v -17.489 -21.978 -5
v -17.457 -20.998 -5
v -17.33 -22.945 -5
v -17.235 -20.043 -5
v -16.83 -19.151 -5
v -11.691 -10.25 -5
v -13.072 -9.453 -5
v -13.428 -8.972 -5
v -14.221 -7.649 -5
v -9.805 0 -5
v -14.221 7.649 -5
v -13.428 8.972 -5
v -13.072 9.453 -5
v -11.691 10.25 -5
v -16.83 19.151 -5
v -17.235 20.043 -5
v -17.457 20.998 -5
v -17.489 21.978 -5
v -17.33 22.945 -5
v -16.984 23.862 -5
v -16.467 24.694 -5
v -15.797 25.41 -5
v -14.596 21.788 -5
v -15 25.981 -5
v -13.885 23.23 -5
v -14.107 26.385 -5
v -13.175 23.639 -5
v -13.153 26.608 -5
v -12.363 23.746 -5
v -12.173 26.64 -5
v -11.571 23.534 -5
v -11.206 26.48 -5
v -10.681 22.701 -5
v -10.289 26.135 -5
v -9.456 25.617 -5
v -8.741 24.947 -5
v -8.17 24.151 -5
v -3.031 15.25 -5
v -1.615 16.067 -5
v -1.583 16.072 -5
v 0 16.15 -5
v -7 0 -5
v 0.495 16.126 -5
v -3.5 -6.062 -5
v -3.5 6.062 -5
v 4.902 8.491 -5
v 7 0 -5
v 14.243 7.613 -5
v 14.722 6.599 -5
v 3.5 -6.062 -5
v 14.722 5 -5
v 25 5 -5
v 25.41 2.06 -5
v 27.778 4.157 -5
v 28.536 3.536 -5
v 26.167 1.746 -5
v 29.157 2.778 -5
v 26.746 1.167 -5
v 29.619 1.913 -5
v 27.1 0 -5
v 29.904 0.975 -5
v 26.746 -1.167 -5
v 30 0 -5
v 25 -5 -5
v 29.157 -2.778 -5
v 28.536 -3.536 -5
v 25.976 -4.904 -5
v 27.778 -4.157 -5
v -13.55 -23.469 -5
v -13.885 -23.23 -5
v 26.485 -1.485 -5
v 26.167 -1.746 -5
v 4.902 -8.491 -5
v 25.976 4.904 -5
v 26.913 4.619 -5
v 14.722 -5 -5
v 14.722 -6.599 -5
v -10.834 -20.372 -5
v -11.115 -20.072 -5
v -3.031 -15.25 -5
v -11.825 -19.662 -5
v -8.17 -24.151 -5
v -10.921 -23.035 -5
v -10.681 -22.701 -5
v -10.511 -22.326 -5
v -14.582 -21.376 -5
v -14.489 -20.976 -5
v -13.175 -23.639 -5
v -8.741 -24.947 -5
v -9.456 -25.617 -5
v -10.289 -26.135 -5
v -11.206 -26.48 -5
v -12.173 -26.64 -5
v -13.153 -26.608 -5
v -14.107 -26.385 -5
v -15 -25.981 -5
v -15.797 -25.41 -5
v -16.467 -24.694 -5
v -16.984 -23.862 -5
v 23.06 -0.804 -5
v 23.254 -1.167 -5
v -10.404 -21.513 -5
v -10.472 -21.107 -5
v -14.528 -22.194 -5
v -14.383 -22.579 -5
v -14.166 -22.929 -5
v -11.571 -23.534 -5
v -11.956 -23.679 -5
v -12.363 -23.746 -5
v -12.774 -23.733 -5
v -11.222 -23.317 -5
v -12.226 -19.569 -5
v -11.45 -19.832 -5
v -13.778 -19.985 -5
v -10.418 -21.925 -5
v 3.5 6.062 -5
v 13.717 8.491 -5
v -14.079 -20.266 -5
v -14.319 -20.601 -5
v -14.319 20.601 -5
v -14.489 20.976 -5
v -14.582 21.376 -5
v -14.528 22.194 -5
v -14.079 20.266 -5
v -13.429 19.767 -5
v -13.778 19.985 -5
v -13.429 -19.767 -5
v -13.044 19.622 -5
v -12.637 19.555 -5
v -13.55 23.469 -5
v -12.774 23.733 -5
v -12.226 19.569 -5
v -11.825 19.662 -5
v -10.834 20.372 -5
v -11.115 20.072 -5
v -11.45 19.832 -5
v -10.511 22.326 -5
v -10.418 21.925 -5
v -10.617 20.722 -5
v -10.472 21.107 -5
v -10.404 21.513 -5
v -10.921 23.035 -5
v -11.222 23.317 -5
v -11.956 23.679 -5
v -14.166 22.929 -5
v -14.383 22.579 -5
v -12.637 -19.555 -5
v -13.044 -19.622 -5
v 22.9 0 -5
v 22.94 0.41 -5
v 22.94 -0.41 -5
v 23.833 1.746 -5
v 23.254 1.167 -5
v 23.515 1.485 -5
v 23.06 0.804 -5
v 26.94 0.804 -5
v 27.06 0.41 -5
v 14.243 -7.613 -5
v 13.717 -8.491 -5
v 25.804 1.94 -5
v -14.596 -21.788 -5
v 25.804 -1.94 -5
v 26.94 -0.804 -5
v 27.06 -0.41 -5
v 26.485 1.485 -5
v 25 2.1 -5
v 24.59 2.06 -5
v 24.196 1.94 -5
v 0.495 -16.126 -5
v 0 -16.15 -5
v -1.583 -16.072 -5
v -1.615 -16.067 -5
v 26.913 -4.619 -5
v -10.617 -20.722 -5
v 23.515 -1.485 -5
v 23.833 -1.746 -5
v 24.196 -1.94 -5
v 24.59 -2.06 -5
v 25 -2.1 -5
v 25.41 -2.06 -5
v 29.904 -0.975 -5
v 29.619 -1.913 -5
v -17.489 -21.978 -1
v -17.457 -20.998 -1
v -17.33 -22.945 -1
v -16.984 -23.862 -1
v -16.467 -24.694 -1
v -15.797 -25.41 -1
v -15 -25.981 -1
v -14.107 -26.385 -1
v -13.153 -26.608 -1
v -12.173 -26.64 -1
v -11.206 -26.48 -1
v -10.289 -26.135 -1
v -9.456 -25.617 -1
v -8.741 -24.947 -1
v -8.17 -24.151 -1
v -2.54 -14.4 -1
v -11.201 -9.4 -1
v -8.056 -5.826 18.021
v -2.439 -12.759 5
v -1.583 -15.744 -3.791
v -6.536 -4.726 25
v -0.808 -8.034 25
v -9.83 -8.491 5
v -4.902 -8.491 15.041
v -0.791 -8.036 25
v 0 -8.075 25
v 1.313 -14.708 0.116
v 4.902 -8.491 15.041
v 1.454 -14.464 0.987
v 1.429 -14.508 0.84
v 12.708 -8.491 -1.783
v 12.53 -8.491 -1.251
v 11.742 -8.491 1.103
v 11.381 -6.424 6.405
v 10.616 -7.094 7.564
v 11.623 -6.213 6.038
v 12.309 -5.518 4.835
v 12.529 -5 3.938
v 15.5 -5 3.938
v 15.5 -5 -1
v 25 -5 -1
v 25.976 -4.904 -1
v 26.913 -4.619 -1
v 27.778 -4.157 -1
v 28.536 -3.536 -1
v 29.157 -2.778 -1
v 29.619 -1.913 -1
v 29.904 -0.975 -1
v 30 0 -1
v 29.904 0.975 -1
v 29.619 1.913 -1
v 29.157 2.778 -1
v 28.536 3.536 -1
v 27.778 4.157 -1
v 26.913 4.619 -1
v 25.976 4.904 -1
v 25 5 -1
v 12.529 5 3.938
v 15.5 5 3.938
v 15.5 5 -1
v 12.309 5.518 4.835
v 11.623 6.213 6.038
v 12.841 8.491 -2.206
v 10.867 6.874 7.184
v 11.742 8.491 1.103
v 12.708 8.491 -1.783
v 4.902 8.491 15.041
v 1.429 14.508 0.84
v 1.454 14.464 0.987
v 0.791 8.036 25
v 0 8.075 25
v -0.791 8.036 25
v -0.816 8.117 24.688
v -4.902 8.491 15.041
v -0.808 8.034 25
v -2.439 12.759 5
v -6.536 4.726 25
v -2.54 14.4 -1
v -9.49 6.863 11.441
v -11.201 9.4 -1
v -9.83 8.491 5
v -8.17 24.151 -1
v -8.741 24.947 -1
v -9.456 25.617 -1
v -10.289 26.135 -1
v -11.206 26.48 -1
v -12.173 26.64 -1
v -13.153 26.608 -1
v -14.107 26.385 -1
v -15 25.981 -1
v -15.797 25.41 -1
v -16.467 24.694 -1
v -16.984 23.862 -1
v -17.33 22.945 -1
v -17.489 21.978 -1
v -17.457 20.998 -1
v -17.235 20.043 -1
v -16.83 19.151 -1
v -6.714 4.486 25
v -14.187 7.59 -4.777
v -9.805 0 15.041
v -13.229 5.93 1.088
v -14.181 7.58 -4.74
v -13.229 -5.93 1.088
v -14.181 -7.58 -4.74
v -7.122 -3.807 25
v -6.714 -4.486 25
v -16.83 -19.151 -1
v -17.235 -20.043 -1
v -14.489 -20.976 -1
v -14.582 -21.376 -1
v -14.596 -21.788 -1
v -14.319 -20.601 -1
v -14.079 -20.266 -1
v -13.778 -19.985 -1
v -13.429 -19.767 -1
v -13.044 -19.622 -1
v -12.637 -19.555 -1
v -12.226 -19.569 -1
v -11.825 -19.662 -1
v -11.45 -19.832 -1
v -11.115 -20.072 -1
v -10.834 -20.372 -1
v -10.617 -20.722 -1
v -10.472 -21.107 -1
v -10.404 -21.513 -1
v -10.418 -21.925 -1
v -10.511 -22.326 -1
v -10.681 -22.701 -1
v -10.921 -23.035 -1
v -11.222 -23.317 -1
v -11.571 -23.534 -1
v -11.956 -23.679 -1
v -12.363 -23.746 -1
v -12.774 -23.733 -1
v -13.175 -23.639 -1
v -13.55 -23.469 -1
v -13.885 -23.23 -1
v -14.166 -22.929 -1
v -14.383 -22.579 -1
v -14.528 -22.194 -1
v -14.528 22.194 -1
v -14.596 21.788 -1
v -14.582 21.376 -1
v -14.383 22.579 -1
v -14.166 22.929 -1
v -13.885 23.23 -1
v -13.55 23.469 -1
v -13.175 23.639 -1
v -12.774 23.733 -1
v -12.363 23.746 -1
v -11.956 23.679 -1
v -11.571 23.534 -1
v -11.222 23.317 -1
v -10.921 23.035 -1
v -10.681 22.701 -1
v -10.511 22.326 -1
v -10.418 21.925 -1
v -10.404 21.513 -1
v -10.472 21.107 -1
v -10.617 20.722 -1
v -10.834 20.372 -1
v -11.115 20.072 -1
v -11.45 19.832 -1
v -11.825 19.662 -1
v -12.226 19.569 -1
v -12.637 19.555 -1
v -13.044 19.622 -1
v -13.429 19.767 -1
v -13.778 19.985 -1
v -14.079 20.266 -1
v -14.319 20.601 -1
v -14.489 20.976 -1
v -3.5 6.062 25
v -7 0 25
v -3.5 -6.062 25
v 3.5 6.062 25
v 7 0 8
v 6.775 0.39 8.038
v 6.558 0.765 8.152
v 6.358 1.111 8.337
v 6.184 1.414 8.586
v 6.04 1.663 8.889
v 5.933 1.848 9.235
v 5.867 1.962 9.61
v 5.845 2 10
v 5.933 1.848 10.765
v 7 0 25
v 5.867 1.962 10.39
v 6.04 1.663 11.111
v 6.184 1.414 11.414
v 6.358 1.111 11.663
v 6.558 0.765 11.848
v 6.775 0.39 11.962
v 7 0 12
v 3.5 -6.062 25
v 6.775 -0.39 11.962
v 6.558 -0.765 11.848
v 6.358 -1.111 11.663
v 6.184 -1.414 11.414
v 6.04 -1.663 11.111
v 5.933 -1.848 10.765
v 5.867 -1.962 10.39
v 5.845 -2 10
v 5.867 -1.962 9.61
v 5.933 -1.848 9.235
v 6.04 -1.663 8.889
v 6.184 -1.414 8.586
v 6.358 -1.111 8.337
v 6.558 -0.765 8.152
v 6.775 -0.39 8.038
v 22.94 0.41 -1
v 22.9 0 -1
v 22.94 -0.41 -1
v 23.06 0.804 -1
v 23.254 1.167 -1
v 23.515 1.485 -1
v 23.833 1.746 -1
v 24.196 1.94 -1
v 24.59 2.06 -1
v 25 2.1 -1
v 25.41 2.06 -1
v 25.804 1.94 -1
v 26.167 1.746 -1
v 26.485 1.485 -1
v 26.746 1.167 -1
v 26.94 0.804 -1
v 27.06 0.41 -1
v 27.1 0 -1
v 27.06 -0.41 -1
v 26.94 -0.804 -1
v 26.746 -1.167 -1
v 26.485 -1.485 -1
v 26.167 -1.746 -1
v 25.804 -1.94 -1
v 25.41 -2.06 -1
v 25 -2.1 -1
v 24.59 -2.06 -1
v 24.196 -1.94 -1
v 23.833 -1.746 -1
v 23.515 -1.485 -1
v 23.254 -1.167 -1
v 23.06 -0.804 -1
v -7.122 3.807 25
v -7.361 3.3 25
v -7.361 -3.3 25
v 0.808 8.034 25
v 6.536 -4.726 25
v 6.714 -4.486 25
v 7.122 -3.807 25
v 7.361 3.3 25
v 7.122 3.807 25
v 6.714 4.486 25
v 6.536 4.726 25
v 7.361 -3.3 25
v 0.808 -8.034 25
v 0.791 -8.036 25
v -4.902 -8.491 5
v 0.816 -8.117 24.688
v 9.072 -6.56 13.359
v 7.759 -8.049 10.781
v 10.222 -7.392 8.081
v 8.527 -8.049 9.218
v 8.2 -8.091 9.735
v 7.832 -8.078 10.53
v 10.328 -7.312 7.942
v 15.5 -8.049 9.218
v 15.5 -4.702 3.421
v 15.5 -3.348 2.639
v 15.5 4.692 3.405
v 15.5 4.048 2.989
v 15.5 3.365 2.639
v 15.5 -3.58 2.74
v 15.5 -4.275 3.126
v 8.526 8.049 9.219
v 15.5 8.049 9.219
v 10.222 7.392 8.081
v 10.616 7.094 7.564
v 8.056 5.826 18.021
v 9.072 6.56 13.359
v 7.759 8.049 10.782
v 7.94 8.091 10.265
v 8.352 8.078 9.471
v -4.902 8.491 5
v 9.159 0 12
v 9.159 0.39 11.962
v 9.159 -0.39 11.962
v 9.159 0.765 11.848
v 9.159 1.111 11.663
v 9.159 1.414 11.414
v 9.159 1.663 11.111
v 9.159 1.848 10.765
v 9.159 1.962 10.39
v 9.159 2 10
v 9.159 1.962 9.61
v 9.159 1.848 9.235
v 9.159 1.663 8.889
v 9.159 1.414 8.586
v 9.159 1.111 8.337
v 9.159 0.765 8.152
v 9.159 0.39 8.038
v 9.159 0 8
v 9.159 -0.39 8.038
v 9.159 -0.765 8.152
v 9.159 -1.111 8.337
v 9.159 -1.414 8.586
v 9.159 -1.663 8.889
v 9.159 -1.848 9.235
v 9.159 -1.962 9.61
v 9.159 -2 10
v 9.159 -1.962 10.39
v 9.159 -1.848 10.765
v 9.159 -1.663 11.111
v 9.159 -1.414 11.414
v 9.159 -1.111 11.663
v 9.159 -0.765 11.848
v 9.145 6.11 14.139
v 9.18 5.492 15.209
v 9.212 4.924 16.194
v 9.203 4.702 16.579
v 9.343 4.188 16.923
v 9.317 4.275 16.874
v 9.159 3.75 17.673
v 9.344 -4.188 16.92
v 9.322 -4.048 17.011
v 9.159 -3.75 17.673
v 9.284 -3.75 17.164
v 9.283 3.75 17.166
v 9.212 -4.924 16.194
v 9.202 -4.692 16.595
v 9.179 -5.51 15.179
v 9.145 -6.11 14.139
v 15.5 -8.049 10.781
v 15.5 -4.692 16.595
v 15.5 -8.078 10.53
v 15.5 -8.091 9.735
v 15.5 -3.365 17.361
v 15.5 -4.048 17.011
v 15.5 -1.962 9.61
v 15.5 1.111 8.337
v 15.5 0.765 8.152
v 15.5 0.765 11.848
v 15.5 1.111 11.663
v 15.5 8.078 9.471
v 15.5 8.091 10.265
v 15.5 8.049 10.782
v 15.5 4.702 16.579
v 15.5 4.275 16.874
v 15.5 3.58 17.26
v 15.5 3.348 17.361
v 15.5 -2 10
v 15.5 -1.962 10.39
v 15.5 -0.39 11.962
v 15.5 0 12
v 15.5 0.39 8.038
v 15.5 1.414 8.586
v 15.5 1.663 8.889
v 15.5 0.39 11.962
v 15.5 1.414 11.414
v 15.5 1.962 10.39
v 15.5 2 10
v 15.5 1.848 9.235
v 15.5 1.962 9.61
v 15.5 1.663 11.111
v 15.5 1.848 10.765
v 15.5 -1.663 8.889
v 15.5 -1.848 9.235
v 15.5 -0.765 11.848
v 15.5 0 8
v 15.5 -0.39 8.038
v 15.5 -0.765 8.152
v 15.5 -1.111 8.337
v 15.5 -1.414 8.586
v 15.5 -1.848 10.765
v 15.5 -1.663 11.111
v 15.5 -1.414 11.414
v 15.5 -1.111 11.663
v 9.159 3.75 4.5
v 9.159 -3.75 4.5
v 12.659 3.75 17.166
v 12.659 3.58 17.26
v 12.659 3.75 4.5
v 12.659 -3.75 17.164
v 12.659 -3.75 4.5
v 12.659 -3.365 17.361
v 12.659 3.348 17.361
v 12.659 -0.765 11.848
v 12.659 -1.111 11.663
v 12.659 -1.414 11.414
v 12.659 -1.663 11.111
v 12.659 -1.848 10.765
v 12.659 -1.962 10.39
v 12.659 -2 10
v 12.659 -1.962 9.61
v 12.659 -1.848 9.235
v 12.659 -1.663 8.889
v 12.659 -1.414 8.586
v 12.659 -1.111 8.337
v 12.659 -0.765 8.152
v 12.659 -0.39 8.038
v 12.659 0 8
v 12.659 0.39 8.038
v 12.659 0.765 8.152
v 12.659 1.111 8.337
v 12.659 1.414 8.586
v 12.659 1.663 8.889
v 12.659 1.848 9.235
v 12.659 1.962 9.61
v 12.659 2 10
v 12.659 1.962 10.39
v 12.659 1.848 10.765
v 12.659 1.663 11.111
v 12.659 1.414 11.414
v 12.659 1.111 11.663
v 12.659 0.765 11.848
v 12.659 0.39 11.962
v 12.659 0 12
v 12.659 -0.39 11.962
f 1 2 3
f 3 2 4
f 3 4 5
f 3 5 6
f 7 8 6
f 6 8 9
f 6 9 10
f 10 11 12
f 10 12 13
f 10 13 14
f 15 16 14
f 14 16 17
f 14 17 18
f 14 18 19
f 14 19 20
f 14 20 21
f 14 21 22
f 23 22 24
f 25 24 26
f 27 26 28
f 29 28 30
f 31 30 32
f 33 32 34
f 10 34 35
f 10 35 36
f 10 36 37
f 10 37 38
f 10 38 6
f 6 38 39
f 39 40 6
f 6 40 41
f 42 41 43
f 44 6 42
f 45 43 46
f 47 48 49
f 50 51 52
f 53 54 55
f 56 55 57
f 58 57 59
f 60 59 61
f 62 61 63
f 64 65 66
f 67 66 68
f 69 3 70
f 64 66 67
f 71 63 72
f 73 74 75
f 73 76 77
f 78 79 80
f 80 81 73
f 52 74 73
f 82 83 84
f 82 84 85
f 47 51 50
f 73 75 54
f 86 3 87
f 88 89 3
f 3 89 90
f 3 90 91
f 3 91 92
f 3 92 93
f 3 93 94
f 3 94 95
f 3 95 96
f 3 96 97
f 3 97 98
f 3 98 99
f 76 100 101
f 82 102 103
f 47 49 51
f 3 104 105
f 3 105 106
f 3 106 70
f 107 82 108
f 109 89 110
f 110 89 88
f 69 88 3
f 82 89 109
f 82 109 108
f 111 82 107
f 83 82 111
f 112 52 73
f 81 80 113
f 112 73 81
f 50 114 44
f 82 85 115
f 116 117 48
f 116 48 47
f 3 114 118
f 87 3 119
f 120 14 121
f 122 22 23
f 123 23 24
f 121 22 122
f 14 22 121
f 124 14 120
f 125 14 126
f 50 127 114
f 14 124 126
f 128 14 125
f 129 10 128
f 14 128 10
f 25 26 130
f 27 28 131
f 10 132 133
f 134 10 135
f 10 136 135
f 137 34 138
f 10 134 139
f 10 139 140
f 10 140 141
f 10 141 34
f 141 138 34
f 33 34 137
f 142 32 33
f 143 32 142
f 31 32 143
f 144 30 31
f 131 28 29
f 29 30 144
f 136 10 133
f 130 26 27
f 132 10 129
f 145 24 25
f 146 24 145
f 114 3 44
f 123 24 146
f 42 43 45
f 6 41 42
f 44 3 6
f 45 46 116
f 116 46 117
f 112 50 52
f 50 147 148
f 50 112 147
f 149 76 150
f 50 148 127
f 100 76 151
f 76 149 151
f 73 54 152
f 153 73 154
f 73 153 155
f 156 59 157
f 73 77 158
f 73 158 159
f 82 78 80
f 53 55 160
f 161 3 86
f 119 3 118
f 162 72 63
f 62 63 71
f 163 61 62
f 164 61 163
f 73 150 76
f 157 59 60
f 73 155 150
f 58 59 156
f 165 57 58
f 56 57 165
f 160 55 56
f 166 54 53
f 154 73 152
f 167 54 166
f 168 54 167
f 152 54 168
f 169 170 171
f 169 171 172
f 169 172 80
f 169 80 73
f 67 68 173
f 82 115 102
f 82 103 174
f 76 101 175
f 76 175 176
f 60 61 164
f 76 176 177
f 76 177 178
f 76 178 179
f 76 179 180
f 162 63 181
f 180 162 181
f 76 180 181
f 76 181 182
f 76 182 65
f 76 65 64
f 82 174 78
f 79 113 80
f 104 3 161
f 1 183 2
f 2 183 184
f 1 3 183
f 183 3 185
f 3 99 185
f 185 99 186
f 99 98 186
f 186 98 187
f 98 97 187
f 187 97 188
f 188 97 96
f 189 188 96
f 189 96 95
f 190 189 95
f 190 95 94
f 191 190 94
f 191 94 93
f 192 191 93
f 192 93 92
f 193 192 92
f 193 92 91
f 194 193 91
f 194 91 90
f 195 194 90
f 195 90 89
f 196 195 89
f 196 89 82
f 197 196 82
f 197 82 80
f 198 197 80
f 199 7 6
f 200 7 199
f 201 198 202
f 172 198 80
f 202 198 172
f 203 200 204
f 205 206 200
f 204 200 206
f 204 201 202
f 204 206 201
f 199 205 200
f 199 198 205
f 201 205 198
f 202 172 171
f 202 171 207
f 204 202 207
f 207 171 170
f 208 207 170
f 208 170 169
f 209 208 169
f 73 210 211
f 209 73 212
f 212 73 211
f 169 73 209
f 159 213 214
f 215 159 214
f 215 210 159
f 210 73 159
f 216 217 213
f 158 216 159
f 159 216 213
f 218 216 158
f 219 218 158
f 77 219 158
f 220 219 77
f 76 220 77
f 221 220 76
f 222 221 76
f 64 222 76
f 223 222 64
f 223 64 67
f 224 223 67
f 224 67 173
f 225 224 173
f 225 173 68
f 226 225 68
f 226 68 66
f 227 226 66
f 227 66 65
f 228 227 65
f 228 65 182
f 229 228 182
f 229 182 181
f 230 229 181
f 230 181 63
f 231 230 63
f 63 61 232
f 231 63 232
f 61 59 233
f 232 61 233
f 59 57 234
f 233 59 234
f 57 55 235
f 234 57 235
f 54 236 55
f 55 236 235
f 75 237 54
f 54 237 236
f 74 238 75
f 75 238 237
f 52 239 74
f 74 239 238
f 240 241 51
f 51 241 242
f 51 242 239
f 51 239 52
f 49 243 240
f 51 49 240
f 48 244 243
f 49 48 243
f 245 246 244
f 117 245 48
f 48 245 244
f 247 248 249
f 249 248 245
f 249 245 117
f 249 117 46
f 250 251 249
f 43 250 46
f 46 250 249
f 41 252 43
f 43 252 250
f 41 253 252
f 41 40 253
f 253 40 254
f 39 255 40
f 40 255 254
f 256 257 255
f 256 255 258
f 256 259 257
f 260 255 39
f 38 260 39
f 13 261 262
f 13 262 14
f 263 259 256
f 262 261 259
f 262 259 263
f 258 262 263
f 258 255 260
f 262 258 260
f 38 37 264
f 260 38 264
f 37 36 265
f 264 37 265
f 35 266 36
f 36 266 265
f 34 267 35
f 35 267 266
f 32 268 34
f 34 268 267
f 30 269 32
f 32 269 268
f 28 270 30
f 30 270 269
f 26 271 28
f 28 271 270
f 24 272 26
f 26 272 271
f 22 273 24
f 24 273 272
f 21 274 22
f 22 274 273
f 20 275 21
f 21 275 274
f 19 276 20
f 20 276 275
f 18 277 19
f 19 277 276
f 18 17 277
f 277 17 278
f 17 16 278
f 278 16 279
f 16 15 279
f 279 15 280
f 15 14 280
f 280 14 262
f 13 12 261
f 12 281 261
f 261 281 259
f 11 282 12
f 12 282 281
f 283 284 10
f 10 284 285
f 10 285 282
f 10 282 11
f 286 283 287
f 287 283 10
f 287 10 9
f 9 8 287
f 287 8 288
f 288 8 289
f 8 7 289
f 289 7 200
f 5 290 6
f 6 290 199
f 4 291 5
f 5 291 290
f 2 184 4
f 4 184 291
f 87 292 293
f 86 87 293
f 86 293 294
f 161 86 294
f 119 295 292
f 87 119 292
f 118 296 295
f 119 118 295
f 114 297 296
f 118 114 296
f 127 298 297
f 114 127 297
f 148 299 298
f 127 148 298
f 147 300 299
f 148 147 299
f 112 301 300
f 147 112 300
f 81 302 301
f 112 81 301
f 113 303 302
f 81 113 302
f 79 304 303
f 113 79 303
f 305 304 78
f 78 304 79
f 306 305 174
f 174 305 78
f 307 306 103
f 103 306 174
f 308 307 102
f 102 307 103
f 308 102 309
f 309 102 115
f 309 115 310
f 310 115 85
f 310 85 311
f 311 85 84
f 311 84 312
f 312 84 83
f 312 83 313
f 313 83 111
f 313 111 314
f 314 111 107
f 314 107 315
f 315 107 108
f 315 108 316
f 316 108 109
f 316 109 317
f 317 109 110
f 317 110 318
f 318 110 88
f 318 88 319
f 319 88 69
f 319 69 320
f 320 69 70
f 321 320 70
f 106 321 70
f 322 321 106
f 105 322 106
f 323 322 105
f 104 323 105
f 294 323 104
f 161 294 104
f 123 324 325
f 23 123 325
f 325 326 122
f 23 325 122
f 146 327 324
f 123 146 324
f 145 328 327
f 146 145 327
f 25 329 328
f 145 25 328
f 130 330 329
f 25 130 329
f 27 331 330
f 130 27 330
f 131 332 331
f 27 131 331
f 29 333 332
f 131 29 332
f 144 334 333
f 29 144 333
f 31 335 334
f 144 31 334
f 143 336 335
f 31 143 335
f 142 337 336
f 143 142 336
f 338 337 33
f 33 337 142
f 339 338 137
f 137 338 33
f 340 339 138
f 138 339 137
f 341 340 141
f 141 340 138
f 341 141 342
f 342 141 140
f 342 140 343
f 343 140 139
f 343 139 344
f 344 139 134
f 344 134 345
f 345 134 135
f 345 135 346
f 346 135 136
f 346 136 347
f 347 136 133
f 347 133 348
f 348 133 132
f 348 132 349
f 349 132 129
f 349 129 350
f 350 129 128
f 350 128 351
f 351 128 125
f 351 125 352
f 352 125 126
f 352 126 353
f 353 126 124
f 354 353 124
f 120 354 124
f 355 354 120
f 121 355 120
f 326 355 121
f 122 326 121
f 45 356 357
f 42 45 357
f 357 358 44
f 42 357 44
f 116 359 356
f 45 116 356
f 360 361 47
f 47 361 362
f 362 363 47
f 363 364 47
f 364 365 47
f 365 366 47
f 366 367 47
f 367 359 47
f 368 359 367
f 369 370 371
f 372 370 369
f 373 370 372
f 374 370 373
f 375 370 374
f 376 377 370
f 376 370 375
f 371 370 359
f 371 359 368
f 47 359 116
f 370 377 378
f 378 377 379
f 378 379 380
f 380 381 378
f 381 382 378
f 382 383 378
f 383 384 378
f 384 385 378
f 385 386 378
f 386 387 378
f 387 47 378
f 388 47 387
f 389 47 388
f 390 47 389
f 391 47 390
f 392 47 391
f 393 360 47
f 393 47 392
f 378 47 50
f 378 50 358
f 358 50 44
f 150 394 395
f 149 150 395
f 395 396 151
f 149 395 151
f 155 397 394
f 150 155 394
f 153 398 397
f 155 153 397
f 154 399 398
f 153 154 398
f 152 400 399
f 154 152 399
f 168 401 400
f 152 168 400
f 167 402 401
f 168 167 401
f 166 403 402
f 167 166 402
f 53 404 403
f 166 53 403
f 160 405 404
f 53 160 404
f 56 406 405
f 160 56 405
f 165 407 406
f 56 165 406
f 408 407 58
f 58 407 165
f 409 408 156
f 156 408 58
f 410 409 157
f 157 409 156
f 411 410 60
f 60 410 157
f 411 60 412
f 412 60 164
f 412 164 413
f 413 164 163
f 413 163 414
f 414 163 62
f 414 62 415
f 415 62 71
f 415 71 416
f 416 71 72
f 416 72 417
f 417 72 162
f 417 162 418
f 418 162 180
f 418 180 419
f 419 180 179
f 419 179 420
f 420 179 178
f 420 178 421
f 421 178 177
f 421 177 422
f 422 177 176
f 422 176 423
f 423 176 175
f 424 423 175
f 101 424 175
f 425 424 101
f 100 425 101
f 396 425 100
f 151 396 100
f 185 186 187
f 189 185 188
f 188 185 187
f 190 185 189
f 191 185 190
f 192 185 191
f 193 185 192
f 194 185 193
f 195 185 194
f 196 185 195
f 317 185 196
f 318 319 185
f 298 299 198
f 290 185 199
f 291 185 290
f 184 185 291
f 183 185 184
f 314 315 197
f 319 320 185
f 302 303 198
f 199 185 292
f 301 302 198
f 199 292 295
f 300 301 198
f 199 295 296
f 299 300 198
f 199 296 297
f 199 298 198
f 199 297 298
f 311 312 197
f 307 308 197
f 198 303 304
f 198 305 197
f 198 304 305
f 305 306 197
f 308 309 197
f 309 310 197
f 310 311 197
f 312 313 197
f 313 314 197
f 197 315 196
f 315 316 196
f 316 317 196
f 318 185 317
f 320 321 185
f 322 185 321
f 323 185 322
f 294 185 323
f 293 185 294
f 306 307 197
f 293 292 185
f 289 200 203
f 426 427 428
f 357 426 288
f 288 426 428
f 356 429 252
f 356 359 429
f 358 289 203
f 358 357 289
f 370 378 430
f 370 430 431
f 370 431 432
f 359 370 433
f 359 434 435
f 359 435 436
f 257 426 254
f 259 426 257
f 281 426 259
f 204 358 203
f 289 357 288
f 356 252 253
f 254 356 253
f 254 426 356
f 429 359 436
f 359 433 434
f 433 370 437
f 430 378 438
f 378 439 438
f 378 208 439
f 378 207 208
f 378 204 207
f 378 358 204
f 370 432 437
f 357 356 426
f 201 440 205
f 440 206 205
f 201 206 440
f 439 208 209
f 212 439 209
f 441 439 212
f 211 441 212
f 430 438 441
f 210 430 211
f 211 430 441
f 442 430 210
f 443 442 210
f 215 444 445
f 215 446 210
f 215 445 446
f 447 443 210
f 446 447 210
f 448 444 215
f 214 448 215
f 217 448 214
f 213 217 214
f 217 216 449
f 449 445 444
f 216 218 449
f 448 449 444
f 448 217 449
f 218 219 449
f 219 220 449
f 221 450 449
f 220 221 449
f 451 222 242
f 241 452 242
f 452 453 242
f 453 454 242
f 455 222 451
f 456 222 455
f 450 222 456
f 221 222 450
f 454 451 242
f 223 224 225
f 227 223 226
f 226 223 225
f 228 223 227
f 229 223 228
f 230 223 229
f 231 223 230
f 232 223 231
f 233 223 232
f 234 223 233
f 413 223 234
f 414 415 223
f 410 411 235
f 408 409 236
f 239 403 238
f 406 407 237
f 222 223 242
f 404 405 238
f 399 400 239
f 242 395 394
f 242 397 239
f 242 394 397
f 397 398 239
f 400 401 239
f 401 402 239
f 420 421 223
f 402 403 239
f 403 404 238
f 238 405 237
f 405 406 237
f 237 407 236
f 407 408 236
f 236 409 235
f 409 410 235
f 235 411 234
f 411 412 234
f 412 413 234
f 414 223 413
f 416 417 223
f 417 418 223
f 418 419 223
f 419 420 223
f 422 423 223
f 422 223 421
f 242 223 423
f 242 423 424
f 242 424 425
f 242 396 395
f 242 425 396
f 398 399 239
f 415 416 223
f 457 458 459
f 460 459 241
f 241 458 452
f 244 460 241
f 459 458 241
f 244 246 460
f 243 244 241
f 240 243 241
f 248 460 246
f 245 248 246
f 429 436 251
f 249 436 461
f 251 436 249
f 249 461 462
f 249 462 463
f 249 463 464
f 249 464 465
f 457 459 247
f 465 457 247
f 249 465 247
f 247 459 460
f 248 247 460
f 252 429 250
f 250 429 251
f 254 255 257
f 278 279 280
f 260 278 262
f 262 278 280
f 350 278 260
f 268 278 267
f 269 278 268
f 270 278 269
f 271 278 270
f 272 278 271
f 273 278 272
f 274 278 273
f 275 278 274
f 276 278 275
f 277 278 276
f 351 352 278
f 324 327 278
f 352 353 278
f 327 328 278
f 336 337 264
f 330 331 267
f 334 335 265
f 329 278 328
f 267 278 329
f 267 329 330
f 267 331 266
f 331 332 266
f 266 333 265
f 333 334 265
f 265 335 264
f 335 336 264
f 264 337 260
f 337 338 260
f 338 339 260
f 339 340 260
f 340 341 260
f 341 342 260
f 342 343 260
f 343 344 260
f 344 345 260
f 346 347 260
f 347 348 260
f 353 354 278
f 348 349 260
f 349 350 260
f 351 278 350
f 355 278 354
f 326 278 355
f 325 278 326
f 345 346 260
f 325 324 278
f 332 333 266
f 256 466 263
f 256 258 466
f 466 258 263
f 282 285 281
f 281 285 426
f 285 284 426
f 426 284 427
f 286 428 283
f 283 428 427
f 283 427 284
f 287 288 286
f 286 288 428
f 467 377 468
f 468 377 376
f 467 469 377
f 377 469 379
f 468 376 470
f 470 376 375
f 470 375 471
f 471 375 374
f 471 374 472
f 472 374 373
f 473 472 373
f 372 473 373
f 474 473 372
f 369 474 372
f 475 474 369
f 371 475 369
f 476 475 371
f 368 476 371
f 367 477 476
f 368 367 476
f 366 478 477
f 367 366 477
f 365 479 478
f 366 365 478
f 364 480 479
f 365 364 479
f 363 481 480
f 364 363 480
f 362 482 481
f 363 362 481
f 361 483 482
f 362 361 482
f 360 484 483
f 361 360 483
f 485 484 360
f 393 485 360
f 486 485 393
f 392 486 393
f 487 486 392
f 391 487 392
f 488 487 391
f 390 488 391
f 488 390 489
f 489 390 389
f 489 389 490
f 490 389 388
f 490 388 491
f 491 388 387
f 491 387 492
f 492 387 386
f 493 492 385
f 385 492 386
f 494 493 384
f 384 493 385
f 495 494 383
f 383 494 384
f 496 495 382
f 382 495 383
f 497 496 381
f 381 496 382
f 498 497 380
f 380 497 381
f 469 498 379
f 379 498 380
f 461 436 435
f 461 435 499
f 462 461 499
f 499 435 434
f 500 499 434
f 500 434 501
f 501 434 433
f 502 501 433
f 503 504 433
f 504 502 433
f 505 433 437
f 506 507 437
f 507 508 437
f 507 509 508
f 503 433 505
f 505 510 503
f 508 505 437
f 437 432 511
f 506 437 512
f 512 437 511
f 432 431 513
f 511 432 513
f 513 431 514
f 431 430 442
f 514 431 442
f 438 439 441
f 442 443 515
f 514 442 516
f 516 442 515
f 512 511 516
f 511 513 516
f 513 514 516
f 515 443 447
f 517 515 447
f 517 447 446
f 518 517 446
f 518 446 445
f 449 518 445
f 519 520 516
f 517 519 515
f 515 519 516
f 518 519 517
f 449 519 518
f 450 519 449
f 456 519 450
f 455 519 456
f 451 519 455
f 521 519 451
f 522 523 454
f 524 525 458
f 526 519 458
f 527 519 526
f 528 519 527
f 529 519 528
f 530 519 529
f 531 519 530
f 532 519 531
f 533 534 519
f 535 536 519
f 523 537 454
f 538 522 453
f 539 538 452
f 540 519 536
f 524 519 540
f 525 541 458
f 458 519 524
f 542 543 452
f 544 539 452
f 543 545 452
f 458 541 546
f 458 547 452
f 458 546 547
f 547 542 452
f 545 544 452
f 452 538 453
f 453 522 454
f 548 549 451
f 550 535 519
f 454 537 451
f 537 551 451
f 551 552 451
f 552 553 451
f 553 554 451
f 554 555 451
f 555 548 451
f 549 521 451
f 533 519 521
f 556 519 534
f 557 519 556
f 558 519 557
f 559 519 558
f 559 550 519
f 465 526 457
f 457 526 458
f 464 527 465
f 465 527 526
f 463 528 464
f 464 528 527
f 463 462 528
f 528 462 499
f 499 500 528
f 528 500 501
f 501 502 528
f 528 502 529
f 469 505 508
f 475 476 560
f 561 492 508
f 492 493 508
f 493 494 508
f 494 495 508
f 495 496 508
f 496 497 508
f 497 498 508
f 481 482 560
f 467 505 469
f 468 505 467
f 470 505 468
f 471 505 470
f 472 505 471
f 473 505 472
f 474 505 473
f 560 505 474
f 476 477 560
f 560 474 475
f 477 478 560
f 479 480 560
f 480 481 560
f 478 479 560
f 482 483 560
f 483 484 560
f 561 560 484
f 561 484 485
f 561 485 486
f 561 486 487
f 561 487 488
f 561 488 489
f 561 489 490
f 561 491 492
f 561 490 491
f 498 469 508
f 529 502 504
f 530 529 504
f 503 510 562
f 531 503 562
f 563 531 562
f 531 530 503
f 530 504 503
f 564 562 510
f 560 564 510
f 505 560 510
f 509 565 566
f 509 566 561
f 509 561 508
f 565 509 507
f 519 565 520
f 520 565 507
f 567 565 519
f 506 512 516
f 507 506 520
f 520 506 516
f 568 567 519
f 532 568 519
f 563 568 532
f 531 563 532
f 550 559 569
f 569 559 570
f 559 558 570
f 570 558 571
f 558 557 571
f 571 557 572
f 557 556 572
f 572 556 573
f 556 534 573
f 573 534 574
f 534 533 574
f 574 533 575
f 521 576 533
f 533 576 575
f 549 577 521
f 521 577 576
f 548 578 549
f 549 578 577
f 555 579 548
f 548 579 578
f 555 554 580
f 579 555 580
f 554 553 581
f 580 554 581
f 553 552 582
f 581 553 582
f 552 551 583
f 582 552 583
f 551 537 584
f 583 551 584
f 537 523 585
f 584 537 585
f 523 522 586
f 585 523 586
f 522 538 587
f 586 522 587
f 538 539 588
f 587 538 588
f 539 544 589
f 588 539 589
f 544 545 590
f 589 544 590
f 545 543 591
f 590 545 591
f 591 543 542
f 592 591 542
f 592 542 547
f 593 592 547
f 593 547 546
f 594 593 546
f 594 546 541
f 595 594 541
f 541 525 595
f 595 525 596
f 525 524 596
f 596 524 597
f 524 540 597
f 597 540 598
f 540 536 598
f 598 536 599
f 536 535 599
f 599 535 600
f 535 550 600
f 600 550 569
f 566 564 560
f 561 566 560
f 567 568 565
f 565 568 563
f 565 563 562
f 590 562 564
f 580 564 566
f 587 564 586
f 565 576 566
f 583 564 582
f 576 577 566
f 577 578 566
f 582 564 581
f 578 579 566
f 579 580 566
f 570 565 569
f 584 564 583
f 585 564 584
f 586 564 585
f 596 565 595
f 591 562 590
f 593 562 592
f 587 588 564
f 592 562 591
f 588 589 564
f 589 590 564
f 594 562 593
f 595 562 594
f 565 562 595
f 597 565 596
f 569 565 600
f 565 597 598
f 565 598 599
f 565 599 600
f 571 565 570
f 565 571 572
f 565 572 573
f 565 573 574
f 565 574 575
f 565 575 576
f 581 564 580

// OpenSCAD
difference () {
  union () {
    difference () {
      union () {
        rotate (a=0.0, v=[0, 0, 1]) {
          union () {
            translate ([12.5, 0, 0]) {
              cube ([25.0, 10, 10], center=true);
            }
            translate ([25.0, 0, 0]) {
              cylinder ($fn=32, h=10, r=5, center=true);
            }
          }
        }
        rotate (a=119.99999999999999, v=[0, 0, 1]) {
          union () {
            translate ([12.5, 0, 0]) {
              cube ([25.0, 10, 10], center=true);
            }
            translate ([25.0, 0, 0]) {
              cylinder ($fn=32, h=10, r=5, center=true);
            }
          }
        }
        rotate (a=239.99999999999997, v=[0, 0, 1]) {
          union () {
            translate ([12.5, 0, 0]) {
              cube ([25.0, 10, 10], center=true);
            }
            translate ([25.0, 0, 0]) {
              cylinder ($fn=32, h=10, r=5, center=true);
            }
          }
        }
      }
      translate ([0, 0, 4]) {
        cylinder (h=10, r=50.0, center=true);
      }
    }
    union () {
      translate ([8.0, 0, 10.0]) {
        rotate (a=29.999999999999996, v=[1, 0, 0]) {
          rotate (a=90.0, v=[0, 1, 0]) {
            intersection () {
              cylinder ($fn=6, h=15, r=8.5, center=true);
              cylinder ($fn=64, h=15, r=8.095238095238095, center=true);
            }
          }
        }
      }
      translate ([10.5, 0, 0]) {
        cube ([10, 10, 10], center=true);
      }
      translate ([0, 0, 10.0]) {
        intersection () {
          rotate (a=29.999999999999996, v=[0, 0, 1]) {
            cylinder ($fn=6, h=30, r1=17.0, r2=8.5, center=true);
          }
          cylinder ($fn=64, h=30, r1=16.15, r2=8.075, center=true);
        }
      }
    }
  }
  translate ([10.909090909090908, 0, 12]) {
    cube ([3.5, 7.5, 15.0], center=true);
  }
  rotate (a=0.0, v=[0, 0, 1]) {
    translate ([25.0, 0, 0]) {
      cylinder ($fn=32, h=20, r=2.1, center=true);
    }
  }
  rotate (a=119.99999999999999, v=[0, 0, 1]) {
    translate ([25.0, 0, 0]) {
      cylinder ($fn=32, h=20, r=2.1, center=true);
    }
  }
  rotate (a=239.99999999999997, v=[0, 0, 1]) {
    translate ([25.0, 0, 0]) {
      cylinder ($fn=32, h=20, r=2.1, center=true);
    }
  }
  cylinder ($fn=6, h=100, r=7.0, center=true);
  translate ([20, 0, 10]) {
    rotate (a=90.0, v=[0, 1, 0]) {
      cylinder ($fn=32, h=40, r=2, center=true);
    }
  }
  rotate (a=59.99999999999999, v=[0, 0, 1]) {
    translate ([19.805, 0, 20]) {
      cylinder ($fn=6, h=125, r=10, center=true);
    }
  }
  rotate (a=119.99999999999999, v=[0, 0, 1]) {
    translate ([19.805, 0, 20]) {
      cylinder ($fn=6, h=30, r=10, center=true);
    }
  }
  rotate (a=180.0, v=[0, 0, 1]) {
    translate ([19.805, 0, 20]) {
      cylinder ($fn=6, h=125, r=10, center=true);
    }
  }
  rotate (a=239.99999999999997, v=[0, 0, 1]) {
    translate ([19.805, 0, 20]) {
      cylinder ($fn=6, h=30, r=10, center=true);
    }
  }
  rotate (a=299.99999999999994, v=[0, 0, 1]) {
    translate ([19.805, 0, 20]) {
      cylinder ($fn=6, h=125, r=10, center=true);
    }
  }
}
